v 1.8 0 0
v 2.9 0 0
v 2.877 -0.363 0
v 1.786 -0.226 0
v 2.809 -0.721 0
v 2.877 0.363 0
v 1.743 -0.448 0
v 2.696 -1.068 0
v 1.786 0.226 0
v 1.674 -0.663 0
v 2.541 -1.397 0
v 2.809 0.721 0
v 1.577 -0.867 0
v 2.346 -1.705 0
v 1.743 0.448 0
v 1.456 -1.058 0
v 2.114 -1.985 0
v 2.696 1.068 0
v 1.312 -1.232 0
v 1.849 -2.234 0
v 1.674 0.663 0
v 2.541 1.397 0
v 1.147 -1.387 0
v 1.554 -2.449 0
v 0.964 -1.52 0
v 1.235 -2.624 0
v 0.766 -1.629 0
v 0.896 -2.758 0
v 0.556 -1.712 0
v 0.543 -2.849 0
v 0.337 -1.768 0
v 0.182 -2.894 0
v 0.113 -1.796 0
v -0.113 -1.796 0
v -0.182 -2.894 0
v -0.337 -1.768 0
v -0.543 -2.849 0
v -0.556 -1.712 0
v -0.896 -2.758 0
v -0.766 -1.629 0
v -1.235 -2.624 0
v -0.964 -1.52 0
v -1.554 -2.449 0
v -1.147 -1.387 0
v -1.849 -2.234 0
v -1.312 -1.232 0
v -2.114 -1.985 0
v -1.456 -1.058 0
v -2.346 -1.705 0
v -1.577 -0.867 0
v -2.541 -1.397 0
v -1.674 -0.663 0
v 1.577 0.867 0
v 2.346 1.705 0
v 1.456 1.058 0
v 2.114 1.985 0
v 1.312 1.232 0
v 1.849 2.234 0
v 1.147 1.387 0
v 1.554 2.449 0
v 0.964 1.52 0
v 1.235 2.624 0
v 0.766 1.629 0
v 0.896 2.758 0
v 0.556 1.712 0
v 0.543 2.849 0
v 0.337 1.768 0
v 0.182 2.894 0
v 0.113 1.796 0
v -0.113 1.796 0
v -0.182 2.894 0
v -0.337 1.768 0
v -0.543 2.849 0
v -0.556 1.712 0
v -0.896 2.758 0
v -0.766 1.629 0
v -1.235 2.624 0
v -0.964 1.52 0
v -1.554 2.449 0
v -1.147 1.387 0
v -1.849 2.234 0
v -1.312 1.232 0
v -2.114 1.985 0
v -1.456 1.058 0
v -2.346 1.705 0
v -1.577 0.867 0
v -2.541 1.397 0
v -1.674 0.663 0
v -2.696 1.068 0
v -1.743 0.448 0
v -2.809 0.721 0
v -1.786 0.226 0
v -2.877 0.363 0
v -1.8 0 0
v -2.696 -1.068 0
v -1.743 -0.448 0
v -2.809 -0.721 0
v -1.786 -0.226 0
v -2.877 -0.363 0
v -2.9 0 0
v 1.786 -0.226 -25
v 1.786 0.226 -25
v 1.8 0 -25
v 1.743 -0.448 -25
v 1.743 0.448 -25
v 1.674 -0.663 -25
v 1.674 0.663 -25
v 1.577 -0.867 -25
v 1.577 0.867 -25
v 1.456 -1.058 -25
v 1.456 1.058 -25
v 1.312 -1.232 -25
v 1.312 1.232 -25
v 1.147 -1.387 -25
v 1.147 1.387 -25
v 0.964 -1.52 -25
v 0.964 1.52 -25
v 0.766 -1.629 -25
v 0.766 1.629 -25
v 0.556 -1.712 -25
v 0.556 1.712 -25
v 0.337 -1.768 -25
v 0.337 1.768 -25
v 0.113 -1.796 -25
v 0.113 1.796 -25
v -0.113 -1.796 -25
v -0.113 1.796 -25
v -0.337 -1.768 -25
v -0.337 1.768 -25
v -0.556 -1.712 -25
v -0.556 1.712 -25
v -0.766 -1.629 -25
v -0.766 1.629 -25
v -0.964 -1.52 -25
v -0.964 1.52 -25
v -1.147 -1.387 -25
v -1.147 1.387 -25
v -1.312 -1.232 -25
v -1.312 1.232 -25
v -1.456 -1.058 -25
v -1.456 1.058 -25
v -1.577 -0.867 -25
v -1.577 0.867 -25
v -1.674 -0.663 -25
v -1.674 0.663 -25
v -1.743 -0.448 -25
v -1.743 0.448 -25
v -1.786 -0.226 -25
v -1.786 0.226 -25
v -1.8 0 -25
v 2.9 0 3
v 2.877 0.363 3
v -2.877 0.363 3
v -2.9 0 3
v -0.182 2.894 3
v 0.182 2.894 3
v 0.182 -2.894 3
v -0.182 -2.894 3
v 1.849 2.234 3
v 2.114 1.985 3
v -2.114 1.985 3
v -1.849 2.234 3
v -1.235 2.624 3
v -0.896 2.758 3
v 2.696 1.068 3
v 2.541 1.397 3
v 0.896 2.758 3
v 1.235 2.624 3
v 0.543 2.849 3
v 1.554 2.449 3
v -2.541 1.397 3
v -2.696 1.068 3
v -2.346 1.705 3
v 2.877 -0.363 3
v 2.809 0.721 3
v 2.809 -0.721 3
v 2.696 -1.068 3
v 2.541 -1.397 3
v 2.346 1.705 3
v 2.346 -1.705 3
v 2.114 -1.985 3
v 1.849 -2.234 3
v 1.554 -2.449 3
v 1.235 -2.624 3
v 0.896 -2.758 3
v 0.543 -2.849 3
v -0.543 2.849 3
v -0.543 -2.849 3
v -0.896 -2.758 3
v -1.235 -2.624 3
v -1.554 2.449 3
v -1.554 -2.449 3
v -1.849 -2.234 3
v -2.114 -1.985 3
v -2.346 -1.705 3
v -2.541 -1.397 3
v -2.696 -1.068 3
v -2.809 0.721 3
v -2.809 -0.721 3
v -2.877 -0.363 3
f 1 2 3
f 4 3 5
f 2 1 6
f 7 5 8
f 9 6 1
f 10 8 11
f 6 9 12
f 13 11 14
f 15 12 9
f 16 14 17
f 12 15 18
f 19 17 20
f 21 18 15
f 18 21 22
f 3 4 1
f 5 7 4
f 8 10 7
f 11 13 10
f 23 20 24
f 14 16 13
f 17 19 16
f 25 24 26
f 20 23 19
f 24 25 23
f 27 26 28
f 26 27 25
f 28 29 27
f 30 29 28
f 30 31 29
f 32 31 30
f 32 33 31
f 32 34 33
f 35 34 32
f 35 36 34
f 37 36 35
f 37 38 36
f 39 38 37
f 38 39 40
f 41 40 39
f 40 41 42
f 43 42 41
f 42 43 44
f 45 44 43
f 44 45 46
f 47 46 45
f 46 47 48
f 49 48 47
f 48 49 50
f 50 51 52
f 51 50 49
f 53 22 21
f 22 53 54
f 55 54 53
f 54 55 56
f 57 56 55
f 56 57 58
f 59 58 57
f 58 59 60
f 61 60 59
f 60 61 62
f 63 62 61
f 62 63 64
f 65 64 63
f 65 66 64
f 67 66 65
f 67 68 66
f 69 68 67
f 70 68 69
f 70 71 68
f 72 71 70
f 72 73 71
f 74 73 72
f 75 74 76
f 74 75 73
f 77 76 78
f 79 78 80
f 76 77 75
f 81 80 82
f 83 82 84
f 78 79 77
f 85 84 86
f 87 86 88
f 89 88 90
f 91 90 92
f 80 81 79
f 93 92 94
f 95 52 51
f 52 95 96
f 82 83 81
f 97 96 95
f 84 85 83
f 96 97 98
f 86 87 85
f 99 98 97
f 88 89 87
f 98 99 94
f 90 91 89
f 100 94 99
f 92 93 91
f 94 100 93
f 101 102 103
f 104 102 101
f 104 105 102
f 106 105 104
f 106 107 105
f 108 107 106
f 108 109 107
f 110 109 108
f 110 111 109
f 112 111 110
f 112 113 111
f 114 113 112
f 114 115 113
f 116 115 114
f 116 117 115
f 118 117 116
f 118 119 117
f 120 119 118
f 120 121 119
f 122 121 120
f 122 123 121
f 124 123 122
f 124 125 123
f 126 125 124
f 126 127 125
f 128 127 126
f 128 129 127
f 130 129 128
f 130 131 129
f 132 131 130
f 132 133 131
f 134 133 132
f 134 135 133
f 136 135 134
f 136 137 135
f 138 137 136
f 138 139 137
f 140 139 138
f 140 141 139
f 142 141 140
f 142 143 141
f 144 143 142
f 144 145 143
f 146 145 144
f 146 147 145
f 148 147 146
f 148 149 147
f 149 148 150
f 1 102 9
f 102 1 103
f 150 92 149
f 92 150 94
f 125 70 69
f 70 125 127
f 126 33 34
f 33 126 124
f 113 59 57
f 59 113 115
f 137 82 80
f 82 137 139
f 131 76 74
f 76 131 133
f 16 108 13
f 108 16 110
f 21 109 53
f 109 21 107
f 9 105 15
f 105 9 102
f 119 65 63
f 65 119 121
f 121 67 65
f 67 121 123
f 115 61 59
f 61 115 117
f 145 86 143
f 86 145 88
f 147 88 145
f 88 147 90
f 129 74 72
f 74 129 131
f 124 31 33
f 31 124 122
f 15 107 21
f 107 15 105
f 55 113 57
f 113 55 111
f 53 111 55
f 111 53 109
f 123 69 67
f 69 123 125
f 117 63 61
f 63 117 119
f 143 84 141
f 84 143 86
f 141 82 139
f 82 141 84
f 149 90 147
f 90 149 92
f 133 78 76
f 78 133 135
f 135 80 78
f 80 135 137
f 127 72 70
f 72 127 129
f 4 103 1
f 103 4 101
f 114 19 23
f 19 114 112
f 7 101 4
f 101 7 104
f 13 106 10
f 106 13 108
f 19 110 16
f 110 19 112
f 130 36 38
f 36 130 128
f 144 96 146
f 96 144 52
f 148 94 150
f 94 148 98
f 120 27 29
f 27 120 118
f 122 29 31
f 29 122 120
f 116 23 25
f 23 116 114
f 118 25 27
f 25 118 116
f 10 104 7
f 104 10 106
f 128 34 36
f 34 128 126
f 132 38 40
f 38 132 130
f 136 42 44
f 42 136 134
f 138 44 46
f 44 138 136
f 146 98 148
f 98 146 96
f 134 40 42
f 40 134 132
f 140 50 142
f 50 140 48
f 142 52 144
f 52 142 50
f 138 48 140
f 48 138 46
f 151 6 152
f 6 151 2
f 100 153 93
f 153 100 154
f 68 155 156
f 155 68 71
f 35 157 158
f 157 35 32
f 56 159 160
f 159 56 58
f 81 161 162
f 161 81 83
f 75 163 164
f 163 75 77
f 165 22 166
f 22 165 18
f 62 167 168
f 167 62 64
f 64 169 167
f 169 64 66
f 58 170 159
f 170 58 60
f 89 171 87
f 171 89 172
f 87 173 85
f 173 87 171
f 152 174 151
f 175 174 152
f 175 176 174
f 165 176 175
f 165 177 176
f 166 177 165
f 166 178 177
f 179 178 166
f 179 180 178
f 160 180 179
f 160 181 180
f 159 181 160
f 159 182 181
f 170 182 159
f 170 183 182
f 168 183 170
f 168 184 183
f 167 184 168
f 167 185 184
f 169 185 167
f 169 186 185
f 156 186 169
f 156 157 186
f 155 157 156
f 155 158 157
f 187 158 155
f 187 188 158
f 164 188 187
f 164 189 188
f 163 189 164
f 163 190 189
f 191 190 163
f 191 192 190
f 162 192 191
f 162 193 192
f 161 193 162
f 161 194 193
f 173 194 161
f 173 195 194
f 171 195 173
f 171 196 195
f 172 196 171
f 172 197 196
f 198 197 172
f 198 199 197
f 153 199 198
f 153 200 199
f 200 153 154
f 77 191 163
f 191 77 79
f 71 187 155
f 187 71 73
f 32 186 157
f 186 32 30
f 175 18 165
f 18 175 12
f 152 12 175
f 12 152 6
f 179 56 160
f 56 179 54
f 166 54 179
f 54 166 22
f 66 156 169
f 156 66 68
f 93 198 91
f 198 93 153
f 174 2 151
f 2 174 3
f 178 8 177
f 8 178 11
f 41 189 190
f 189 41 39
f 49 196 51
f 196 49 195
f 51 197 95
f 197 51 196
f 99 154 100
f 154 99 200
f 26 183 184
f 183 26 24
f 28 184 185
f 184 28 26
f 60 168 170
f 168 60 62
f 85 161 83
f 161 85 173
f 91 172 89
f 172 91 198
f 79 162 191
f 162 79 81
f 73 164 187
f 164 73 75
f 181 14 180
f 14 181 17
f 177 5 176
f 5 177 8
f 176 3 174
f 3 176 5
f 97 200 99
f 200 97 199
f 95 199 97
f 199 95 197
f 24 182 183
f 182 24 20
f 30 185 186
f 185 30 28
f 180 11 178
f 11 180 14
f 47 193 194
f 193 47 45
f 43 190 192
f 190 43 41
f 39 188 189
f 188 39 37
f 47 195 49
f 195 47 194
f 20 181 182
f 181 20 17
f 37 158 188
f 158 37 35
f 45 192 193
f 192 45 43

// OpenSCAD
$fn = 50;


difference() {
	union() {
		translate(v = [0, 0, 0]) {
			rotate(a = [0, 0, 0]) {
				difference() {
					union() {
						translate(v = [0, 0, -25.0000000000]) {
							cylinder(h = 25, r = 1.5000000000);
						}
						translate(v = [0, 0, -25.0000000000]) {
							cylinder(h = 25, r = 1.8000000000);
						}
						cylinder(h = 3, r = 2.9000000000);
						translate(v = [0, 0, -25.0000000000]) {
							cylinder(h = 25, r = 1.5000000000);
						}
					}
					union();
				}
			}
		}
	}
	union();
}
